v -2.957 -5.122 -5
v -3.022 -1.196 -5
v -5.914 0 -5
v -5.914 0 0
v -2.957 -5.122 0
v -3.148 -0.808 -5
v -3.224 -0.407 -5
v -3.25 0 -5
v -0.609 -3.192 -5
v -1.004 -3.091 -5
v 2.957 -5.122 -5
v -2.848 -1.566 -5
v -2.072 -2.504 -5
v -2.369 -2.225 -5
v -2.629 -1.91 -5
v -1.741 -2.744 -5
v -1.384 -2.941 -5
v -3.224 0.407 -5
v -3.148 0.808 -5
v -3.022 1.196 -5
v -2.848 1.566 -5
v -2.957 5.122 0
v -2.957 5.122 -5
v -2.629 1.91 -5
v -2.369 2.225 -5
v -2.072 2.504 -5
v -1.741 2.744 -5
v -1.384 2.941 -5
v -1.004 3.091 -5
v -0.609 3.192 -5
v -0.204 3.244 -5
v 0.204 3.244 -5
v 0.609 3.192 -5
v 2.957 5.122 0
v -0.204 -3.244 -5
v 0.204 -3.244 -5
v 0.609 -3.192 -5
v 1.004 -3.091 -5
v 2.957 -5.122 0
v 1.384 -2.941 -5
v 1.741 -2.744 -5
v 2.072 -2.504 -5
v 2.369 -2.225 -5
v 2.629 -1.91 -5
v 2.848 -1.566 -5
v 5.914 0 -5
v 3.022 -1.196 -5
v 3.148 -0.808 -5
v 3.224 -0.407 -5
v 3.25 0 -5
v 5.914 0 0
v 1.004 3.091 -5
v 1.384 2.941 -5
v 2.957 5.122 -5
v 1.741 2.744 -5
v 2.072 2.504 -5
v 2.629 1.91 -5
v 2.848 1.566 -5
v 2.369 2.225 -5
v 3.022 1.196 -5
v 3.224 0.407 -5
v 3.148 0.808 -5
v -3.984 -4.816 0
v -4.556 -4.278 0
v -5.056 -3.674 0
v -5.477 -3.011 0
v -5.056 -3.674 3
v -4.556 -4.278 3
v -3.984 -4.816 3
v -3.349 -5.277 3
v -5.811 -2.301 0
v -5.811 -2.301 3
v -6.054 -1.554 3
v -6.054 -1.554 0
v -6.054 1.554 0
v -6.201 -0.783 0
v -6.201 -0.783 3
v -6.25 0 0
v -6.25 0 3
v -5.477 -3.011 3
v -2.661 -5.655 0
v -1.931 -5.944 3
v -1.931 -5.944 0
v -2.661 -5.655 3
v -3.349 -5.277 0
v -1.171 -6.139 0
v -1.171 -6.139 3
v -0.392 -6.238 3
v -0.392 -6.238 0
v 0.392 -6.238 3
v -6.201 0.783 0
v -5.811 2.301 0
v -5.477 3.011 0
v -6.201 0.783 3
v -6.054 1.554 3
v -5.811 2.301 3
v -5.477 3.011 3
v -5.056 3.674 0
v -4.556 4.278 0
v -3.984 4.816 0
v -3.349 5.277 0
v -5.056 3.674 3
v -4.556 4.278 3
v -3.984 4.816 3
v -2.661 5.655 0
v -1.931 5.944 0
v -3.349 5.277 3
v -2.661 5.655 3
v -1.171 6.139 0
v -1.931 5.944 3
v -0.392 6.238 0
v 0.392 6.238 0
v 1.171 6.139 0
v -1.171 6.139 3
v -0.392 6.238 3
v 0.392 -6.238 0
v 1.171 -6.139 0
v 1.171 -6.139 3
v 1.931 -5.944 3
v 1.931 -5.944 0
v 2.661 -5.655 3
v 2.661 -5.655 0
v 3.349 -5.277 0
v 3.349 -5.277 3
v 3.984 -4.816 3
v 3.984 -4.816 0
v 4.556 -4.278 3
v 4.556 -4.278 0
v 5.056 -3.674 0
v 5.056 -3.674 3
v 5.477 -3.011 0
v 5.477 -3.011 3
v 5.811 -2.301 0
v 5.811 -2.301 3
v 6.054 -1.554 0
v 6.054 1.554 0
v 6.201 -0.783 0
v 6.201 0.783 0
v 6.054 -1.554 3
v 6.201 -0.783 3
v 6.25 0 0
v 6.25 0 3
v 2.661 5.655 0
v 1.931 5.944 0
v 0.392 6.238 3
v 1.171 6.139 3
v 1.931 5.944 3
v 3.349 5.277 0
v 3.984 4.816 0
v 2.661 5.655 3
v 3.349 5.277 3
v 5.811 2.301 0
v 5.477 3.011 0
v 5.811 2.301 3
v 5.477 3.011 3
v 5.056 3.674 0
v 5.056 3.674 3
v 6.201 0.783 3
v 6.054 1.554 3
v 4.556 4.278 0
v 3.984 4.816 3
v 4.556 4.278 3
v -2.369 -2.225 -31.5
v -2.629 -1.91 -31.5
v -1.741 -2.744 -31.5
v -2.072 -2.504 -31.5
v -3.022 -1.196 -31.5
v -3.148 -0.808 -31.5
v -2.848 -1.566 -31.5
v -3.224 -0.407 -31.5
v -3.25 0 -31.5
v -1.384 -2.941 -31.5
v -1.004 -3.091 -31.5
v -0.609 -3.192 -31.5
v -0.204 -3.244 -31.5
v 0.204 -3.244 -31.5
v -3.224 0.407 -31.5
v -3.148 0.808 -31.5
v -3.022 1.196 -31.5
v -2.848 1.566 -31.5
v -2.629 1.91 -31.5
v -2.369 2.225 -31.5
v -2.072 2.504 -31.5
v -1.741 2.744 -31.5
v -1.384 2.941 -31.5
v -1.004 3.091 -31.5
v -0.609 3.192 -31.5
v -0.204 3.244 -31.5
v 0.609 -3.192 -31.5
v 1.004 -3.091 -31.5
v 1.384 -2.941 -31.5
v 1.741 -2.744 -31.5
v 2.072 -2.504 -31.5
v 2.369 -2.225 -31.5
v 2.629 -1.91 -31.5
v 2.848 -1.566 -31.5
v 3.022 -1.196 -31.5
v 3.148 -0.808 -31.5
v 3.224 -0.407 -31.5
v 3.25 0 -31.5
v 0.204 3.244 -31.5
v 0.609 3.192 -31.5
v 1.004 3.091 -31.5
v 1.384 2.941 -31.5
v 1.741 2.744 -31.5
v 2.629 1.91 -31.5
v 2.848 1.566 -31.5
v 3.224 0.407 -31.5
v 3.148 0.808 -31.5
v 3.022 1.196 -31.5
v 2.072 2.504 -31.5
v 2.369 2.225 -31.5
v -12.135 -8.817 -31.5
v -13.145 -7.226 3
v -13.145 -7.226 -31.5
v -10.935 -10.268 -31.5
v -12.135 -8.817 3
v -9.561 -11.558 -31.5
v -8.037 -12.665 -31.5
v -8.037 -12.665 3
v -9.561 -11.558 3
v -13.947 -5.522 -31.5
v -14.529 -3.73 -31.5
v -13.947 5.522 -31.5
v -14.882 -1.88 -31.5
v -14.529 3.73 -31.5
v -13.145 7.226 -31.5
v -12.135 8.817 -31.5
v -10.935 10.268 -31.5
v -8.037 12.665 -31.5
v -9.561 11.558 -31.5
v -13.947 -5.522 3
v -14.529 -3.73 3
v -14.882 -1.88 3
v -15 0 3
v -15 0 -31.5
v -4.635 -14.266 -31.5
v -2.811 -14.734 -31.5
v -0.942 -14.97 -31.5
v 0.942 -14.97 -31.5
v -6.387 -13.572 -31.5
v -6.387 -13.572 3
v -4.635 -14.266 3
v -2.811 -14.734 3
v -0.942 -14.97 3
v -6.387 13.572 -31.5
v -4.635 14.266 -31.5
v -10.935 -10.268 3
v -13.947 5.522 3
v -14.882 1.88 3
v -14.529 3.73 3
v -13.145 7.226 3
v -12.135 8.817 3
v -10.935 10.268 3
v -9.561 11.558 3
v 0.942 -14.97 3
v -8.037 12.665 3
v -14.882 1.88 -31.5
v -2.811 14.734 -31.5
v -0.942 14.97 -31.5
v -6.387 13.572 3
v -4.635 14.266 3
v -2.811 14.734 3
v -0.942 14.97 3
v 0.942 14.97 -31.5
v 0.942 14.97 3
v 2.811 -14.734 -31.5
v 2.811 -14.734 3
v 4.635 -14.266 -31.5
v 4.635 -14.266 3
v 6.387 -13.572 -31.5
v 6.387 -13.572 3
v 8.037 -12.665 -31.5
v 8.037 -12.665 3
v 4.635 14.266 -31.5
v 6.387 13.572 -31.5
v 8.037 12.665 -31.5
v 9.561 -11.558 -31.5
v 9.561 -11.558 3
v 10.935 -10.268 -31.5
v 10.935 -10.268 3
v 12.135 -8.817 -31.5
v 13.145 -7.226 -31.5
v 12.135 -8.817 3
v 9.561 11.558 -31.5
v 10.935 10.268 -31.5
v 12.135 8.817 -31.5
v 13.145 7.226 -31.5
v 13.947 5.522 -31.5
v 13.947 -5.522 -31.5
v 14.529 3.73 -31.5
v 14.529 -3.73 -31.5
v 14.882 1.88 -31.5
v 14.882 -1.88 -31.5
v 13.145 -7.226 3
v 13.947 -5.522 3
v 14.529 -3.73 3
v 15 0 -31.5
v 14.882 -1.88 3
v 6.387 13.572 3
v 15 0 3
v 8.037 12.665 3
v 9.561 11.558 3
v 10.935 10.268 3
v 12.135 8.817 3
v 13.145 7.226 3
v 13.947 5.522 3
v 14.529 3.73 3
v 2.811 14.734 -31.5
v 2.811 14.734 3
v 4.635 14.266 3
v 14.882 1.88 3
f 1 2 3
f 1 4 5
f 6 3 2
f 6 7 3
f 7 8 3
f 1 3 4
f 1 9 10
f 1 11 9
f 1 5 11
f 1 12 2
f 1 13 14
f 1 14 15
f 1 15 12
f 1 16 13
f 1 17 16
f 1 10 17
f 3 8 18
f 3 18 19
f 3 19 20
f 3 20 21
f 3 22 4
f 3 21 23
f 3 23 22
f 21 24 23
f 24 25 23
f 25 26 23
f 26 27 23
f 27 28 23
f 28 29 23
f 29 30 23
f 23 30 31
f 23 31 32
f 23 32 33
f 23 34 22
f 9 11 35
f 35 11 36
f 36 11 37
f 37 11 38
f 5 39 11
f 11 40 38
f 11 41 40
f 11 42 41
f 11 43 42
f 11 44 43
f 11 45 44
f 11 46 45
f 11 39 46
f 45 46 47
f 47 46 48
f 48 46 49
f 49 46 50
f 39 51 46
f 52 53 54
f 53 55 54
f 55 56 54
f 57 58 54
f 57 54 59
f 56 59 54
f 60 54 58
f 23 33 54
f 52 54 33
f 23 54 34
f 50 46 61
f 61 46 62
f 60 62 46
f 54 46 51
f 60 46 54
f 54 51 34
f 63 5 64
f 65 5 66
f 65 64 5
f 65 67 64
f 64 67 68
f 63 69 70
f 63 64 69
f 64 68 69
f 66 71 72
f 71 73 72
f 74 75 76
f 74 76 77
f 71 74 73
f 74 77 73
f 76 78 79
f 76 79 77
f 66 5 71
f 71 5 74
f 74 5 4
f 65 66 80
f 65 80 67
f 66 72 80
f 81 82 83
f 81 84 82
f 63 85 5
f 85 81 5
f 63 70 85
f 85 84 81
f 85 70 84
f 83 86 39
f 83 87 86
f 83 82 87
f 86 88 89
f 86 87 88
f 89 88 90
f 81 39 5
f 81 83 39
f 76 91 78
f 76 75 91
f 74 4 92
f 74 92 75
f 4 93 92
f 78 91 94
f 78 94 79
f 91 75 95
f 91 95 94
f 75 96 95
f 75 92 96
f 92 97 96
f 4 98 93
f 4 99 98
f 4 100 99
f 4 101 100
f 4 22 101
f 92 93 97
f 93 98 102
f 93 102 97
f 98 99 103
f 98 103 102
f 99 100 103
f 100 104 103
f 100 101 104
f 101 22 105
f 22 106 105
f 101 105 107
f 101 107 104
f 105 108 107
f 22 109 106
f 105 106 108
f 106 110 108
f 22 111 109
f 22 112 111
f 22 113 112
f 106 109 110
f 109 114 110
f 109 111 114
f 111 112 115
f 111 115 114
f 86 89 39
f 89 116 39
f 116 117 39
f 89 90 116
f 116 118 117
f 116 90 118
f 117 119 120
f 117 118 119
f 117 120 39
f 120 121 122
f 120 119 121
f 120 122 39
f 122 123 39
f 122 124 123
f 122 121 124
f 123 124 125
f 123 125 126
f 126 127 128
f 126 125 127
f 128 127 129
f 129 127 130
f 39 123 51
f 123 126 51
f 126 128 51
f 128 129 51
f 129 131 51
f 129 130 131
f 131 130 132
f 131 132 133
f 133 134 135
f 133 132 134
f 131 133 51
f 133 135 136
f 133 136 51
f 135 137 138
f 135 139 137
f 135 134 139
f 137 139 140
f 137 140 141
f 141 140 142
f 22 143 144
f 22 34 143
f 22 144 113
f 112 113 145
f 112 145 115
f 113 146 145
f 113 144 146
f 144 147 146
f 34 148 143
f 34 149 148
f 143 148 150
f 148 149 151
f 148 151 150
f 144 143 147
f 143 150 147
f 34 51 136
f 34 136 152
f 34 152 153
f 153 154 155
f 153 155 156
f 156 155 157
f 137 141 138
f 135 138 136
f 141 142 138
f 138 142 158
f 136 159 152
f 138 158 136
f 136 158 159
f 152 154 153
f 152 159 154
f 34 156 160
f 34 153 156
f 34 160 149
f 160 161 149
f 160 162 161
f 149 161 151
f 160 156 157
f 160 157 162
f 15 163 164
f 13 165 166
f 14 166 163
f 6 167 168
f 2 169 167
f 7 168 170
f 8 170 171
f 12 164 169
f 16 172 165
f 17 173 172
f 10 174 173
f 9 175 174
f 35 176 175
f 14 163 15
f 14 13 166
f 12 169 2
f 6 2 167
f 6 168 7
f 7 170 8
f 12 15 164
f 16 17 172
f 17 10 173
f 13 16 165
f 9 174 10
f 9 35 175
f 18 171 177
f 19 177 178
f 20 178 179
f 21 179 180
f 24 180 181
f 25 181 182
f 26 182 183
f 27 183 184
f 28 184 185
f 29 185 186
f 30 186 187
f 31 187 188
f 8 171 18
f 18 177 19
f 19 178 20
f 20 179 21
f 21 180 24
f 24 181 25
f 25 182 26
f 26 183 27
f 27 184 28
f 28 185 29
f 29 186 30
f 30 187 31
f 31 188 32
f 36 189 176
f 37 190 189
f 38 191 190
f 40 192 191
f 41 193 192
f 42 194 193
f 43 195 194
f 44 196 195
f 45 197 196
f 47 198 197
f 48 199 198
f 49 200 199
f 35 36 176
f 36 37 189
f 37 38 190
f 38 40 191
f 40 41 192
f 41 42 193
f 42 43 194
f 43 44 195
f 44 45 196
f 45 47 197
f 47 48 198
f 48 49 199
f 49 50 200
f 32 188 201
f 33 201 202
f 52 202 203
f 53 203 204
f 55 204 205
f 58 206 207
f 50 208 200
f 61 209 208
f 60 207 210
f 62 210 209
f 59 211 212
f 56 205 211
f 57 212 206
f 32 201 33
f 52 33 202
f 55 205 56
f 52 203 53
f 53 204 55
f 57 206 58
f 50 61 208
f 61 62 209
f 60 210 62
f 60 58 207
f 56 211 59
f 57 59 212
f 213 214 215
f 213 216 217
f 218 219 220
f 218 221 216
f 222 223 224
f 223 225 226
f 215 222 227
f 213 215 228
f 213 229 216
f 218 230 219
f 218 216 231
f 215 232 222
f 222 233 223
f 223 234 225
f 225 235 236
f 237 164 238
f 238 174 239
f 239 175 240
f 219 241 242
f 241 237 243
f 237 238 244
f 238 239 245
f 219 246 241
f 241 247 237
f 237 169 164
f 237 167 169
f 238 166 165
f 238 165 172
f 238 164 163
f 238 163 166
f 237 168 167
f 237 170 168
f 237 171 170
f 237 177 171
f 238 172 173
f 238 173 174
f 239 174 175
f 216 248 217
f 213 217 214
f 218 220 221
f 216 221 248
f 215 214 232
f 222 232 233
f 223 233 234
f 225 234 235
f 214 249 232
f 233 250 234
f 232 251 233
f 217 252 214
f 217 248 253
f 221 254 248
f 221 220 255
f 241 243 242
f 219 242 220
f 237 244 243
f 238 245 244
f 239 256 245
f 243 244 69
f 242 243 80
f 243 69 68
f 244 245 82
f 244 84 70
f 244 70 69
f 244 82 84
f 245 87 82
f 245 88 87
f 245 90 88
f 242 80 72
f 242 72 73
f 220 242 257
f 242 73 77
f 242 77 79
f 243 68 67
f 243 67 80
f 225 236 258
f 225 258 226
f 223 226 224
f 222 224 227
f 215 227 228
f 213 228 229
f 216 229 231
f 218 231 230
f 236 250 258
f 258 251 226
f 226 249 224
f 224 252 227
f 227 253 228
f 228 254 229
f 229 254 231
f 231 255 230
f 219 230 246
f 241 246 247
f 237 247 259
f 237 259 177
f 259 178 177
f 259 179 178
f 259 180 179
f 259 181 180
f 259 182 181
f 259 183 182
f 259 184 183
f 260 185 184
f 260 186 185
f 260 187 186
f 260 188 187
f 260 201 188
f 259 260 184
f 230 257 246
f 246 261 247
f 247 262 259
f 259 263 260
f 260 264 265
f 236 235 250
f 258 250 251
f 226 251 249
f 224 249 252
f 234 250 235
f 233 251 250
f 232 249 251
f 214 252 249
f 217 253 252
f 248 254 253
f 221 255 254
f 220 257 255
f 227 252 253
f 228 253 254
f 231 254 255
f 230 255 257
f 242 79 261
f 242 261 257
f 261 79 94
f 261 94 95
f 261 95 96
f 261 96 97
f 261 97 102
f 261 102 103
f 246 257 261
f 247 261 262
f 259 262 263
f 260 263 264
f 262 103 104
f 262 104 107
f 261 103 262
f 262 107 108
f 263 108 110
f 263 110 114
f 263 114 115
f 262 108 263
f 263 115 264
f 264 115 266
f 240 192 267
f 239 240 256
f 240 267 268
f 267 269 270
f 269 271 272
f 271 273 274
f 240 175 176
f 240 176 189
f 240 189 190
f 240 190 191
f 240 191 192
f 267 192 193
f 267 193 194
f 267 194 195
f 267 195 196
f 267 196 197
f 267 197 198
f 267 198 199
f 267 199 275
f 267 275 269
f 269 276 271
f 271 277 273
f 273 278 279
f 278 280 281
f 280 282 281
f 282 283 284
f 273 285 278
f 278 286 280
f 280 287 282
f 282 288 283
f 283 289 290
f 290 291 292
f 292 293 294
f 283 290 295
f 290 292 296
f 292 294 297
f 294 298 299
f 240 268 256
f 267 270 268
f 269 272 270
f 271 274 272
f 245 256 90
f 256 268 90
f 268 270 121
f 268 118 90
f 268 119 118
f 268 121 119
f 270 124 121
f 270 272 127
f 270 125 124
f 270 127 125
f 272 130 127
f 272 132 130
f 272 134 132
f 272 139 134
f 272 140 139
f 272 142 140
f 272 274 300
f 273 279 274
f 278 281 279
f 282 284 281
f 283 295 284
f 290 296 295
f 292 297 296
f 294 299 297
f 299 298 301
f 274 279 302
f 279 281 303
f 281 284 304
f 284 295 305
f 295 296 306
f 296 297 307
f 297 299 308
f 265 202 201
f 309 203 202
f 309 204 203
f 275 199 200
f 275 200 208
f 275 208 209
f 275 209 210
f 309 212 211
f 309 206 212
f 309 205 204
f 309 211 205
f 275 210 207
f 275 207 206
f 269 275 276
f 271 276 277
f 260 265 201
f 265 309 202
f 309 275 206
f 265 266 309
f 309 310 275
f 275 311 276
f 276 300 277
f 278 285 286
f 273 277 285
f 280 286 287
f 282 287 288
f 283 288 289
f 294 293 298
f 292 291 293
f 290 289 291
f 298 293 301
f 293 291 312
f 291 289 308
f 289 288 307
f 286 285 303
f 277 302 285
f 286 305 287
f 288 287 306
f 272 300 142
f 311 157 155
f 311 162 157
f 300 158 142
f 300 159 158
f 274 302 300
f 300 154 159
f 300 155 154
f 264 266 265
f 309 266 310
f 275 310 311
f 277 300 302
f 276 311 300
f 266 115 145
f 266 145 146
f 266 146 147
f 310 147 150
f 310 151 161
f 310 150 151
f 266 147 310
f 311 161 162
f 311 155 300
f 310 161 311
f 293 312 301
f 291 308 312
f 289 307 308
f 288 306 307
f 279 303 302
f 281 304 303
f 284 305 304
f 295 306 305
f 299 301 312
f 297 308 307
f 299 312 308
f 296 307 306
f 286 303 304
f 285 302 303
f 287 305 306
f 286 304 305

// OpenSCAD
$fn = 50;

difference() {
	union() {
		translate(v = [0, 0, -31.5]) {
			cylinder(h = 34.5, r = 15.0);
		}
	}
	union() {
		translate(v = [0, 0, 0]) {
			rotate(a = [0, 0, 0]) {
				difference() {
					union() {
						translate(v = [0, 0, -5]) {
							linear_extrude(height = 5) {
								polygon(points = [[5.914249999999999, 0.0], [2.957125, 5.1218907443321156], [-2.9571249999999982, 5.1218907443321156], [-5.914249999999999, 7.242867331857232e-16], [-2.9571250000000022, -5.121890744332115], [2.9571249999999956, -5.121890744332118]]);
							}
						}
					}
					union();
				}
			}
		}
		#cylinder(h = 3, r = 6.25);
		#translate(v = [0, 0, -100.0]) {
			cylinder(h = 200, r = 3.25);
		}
	}
}
